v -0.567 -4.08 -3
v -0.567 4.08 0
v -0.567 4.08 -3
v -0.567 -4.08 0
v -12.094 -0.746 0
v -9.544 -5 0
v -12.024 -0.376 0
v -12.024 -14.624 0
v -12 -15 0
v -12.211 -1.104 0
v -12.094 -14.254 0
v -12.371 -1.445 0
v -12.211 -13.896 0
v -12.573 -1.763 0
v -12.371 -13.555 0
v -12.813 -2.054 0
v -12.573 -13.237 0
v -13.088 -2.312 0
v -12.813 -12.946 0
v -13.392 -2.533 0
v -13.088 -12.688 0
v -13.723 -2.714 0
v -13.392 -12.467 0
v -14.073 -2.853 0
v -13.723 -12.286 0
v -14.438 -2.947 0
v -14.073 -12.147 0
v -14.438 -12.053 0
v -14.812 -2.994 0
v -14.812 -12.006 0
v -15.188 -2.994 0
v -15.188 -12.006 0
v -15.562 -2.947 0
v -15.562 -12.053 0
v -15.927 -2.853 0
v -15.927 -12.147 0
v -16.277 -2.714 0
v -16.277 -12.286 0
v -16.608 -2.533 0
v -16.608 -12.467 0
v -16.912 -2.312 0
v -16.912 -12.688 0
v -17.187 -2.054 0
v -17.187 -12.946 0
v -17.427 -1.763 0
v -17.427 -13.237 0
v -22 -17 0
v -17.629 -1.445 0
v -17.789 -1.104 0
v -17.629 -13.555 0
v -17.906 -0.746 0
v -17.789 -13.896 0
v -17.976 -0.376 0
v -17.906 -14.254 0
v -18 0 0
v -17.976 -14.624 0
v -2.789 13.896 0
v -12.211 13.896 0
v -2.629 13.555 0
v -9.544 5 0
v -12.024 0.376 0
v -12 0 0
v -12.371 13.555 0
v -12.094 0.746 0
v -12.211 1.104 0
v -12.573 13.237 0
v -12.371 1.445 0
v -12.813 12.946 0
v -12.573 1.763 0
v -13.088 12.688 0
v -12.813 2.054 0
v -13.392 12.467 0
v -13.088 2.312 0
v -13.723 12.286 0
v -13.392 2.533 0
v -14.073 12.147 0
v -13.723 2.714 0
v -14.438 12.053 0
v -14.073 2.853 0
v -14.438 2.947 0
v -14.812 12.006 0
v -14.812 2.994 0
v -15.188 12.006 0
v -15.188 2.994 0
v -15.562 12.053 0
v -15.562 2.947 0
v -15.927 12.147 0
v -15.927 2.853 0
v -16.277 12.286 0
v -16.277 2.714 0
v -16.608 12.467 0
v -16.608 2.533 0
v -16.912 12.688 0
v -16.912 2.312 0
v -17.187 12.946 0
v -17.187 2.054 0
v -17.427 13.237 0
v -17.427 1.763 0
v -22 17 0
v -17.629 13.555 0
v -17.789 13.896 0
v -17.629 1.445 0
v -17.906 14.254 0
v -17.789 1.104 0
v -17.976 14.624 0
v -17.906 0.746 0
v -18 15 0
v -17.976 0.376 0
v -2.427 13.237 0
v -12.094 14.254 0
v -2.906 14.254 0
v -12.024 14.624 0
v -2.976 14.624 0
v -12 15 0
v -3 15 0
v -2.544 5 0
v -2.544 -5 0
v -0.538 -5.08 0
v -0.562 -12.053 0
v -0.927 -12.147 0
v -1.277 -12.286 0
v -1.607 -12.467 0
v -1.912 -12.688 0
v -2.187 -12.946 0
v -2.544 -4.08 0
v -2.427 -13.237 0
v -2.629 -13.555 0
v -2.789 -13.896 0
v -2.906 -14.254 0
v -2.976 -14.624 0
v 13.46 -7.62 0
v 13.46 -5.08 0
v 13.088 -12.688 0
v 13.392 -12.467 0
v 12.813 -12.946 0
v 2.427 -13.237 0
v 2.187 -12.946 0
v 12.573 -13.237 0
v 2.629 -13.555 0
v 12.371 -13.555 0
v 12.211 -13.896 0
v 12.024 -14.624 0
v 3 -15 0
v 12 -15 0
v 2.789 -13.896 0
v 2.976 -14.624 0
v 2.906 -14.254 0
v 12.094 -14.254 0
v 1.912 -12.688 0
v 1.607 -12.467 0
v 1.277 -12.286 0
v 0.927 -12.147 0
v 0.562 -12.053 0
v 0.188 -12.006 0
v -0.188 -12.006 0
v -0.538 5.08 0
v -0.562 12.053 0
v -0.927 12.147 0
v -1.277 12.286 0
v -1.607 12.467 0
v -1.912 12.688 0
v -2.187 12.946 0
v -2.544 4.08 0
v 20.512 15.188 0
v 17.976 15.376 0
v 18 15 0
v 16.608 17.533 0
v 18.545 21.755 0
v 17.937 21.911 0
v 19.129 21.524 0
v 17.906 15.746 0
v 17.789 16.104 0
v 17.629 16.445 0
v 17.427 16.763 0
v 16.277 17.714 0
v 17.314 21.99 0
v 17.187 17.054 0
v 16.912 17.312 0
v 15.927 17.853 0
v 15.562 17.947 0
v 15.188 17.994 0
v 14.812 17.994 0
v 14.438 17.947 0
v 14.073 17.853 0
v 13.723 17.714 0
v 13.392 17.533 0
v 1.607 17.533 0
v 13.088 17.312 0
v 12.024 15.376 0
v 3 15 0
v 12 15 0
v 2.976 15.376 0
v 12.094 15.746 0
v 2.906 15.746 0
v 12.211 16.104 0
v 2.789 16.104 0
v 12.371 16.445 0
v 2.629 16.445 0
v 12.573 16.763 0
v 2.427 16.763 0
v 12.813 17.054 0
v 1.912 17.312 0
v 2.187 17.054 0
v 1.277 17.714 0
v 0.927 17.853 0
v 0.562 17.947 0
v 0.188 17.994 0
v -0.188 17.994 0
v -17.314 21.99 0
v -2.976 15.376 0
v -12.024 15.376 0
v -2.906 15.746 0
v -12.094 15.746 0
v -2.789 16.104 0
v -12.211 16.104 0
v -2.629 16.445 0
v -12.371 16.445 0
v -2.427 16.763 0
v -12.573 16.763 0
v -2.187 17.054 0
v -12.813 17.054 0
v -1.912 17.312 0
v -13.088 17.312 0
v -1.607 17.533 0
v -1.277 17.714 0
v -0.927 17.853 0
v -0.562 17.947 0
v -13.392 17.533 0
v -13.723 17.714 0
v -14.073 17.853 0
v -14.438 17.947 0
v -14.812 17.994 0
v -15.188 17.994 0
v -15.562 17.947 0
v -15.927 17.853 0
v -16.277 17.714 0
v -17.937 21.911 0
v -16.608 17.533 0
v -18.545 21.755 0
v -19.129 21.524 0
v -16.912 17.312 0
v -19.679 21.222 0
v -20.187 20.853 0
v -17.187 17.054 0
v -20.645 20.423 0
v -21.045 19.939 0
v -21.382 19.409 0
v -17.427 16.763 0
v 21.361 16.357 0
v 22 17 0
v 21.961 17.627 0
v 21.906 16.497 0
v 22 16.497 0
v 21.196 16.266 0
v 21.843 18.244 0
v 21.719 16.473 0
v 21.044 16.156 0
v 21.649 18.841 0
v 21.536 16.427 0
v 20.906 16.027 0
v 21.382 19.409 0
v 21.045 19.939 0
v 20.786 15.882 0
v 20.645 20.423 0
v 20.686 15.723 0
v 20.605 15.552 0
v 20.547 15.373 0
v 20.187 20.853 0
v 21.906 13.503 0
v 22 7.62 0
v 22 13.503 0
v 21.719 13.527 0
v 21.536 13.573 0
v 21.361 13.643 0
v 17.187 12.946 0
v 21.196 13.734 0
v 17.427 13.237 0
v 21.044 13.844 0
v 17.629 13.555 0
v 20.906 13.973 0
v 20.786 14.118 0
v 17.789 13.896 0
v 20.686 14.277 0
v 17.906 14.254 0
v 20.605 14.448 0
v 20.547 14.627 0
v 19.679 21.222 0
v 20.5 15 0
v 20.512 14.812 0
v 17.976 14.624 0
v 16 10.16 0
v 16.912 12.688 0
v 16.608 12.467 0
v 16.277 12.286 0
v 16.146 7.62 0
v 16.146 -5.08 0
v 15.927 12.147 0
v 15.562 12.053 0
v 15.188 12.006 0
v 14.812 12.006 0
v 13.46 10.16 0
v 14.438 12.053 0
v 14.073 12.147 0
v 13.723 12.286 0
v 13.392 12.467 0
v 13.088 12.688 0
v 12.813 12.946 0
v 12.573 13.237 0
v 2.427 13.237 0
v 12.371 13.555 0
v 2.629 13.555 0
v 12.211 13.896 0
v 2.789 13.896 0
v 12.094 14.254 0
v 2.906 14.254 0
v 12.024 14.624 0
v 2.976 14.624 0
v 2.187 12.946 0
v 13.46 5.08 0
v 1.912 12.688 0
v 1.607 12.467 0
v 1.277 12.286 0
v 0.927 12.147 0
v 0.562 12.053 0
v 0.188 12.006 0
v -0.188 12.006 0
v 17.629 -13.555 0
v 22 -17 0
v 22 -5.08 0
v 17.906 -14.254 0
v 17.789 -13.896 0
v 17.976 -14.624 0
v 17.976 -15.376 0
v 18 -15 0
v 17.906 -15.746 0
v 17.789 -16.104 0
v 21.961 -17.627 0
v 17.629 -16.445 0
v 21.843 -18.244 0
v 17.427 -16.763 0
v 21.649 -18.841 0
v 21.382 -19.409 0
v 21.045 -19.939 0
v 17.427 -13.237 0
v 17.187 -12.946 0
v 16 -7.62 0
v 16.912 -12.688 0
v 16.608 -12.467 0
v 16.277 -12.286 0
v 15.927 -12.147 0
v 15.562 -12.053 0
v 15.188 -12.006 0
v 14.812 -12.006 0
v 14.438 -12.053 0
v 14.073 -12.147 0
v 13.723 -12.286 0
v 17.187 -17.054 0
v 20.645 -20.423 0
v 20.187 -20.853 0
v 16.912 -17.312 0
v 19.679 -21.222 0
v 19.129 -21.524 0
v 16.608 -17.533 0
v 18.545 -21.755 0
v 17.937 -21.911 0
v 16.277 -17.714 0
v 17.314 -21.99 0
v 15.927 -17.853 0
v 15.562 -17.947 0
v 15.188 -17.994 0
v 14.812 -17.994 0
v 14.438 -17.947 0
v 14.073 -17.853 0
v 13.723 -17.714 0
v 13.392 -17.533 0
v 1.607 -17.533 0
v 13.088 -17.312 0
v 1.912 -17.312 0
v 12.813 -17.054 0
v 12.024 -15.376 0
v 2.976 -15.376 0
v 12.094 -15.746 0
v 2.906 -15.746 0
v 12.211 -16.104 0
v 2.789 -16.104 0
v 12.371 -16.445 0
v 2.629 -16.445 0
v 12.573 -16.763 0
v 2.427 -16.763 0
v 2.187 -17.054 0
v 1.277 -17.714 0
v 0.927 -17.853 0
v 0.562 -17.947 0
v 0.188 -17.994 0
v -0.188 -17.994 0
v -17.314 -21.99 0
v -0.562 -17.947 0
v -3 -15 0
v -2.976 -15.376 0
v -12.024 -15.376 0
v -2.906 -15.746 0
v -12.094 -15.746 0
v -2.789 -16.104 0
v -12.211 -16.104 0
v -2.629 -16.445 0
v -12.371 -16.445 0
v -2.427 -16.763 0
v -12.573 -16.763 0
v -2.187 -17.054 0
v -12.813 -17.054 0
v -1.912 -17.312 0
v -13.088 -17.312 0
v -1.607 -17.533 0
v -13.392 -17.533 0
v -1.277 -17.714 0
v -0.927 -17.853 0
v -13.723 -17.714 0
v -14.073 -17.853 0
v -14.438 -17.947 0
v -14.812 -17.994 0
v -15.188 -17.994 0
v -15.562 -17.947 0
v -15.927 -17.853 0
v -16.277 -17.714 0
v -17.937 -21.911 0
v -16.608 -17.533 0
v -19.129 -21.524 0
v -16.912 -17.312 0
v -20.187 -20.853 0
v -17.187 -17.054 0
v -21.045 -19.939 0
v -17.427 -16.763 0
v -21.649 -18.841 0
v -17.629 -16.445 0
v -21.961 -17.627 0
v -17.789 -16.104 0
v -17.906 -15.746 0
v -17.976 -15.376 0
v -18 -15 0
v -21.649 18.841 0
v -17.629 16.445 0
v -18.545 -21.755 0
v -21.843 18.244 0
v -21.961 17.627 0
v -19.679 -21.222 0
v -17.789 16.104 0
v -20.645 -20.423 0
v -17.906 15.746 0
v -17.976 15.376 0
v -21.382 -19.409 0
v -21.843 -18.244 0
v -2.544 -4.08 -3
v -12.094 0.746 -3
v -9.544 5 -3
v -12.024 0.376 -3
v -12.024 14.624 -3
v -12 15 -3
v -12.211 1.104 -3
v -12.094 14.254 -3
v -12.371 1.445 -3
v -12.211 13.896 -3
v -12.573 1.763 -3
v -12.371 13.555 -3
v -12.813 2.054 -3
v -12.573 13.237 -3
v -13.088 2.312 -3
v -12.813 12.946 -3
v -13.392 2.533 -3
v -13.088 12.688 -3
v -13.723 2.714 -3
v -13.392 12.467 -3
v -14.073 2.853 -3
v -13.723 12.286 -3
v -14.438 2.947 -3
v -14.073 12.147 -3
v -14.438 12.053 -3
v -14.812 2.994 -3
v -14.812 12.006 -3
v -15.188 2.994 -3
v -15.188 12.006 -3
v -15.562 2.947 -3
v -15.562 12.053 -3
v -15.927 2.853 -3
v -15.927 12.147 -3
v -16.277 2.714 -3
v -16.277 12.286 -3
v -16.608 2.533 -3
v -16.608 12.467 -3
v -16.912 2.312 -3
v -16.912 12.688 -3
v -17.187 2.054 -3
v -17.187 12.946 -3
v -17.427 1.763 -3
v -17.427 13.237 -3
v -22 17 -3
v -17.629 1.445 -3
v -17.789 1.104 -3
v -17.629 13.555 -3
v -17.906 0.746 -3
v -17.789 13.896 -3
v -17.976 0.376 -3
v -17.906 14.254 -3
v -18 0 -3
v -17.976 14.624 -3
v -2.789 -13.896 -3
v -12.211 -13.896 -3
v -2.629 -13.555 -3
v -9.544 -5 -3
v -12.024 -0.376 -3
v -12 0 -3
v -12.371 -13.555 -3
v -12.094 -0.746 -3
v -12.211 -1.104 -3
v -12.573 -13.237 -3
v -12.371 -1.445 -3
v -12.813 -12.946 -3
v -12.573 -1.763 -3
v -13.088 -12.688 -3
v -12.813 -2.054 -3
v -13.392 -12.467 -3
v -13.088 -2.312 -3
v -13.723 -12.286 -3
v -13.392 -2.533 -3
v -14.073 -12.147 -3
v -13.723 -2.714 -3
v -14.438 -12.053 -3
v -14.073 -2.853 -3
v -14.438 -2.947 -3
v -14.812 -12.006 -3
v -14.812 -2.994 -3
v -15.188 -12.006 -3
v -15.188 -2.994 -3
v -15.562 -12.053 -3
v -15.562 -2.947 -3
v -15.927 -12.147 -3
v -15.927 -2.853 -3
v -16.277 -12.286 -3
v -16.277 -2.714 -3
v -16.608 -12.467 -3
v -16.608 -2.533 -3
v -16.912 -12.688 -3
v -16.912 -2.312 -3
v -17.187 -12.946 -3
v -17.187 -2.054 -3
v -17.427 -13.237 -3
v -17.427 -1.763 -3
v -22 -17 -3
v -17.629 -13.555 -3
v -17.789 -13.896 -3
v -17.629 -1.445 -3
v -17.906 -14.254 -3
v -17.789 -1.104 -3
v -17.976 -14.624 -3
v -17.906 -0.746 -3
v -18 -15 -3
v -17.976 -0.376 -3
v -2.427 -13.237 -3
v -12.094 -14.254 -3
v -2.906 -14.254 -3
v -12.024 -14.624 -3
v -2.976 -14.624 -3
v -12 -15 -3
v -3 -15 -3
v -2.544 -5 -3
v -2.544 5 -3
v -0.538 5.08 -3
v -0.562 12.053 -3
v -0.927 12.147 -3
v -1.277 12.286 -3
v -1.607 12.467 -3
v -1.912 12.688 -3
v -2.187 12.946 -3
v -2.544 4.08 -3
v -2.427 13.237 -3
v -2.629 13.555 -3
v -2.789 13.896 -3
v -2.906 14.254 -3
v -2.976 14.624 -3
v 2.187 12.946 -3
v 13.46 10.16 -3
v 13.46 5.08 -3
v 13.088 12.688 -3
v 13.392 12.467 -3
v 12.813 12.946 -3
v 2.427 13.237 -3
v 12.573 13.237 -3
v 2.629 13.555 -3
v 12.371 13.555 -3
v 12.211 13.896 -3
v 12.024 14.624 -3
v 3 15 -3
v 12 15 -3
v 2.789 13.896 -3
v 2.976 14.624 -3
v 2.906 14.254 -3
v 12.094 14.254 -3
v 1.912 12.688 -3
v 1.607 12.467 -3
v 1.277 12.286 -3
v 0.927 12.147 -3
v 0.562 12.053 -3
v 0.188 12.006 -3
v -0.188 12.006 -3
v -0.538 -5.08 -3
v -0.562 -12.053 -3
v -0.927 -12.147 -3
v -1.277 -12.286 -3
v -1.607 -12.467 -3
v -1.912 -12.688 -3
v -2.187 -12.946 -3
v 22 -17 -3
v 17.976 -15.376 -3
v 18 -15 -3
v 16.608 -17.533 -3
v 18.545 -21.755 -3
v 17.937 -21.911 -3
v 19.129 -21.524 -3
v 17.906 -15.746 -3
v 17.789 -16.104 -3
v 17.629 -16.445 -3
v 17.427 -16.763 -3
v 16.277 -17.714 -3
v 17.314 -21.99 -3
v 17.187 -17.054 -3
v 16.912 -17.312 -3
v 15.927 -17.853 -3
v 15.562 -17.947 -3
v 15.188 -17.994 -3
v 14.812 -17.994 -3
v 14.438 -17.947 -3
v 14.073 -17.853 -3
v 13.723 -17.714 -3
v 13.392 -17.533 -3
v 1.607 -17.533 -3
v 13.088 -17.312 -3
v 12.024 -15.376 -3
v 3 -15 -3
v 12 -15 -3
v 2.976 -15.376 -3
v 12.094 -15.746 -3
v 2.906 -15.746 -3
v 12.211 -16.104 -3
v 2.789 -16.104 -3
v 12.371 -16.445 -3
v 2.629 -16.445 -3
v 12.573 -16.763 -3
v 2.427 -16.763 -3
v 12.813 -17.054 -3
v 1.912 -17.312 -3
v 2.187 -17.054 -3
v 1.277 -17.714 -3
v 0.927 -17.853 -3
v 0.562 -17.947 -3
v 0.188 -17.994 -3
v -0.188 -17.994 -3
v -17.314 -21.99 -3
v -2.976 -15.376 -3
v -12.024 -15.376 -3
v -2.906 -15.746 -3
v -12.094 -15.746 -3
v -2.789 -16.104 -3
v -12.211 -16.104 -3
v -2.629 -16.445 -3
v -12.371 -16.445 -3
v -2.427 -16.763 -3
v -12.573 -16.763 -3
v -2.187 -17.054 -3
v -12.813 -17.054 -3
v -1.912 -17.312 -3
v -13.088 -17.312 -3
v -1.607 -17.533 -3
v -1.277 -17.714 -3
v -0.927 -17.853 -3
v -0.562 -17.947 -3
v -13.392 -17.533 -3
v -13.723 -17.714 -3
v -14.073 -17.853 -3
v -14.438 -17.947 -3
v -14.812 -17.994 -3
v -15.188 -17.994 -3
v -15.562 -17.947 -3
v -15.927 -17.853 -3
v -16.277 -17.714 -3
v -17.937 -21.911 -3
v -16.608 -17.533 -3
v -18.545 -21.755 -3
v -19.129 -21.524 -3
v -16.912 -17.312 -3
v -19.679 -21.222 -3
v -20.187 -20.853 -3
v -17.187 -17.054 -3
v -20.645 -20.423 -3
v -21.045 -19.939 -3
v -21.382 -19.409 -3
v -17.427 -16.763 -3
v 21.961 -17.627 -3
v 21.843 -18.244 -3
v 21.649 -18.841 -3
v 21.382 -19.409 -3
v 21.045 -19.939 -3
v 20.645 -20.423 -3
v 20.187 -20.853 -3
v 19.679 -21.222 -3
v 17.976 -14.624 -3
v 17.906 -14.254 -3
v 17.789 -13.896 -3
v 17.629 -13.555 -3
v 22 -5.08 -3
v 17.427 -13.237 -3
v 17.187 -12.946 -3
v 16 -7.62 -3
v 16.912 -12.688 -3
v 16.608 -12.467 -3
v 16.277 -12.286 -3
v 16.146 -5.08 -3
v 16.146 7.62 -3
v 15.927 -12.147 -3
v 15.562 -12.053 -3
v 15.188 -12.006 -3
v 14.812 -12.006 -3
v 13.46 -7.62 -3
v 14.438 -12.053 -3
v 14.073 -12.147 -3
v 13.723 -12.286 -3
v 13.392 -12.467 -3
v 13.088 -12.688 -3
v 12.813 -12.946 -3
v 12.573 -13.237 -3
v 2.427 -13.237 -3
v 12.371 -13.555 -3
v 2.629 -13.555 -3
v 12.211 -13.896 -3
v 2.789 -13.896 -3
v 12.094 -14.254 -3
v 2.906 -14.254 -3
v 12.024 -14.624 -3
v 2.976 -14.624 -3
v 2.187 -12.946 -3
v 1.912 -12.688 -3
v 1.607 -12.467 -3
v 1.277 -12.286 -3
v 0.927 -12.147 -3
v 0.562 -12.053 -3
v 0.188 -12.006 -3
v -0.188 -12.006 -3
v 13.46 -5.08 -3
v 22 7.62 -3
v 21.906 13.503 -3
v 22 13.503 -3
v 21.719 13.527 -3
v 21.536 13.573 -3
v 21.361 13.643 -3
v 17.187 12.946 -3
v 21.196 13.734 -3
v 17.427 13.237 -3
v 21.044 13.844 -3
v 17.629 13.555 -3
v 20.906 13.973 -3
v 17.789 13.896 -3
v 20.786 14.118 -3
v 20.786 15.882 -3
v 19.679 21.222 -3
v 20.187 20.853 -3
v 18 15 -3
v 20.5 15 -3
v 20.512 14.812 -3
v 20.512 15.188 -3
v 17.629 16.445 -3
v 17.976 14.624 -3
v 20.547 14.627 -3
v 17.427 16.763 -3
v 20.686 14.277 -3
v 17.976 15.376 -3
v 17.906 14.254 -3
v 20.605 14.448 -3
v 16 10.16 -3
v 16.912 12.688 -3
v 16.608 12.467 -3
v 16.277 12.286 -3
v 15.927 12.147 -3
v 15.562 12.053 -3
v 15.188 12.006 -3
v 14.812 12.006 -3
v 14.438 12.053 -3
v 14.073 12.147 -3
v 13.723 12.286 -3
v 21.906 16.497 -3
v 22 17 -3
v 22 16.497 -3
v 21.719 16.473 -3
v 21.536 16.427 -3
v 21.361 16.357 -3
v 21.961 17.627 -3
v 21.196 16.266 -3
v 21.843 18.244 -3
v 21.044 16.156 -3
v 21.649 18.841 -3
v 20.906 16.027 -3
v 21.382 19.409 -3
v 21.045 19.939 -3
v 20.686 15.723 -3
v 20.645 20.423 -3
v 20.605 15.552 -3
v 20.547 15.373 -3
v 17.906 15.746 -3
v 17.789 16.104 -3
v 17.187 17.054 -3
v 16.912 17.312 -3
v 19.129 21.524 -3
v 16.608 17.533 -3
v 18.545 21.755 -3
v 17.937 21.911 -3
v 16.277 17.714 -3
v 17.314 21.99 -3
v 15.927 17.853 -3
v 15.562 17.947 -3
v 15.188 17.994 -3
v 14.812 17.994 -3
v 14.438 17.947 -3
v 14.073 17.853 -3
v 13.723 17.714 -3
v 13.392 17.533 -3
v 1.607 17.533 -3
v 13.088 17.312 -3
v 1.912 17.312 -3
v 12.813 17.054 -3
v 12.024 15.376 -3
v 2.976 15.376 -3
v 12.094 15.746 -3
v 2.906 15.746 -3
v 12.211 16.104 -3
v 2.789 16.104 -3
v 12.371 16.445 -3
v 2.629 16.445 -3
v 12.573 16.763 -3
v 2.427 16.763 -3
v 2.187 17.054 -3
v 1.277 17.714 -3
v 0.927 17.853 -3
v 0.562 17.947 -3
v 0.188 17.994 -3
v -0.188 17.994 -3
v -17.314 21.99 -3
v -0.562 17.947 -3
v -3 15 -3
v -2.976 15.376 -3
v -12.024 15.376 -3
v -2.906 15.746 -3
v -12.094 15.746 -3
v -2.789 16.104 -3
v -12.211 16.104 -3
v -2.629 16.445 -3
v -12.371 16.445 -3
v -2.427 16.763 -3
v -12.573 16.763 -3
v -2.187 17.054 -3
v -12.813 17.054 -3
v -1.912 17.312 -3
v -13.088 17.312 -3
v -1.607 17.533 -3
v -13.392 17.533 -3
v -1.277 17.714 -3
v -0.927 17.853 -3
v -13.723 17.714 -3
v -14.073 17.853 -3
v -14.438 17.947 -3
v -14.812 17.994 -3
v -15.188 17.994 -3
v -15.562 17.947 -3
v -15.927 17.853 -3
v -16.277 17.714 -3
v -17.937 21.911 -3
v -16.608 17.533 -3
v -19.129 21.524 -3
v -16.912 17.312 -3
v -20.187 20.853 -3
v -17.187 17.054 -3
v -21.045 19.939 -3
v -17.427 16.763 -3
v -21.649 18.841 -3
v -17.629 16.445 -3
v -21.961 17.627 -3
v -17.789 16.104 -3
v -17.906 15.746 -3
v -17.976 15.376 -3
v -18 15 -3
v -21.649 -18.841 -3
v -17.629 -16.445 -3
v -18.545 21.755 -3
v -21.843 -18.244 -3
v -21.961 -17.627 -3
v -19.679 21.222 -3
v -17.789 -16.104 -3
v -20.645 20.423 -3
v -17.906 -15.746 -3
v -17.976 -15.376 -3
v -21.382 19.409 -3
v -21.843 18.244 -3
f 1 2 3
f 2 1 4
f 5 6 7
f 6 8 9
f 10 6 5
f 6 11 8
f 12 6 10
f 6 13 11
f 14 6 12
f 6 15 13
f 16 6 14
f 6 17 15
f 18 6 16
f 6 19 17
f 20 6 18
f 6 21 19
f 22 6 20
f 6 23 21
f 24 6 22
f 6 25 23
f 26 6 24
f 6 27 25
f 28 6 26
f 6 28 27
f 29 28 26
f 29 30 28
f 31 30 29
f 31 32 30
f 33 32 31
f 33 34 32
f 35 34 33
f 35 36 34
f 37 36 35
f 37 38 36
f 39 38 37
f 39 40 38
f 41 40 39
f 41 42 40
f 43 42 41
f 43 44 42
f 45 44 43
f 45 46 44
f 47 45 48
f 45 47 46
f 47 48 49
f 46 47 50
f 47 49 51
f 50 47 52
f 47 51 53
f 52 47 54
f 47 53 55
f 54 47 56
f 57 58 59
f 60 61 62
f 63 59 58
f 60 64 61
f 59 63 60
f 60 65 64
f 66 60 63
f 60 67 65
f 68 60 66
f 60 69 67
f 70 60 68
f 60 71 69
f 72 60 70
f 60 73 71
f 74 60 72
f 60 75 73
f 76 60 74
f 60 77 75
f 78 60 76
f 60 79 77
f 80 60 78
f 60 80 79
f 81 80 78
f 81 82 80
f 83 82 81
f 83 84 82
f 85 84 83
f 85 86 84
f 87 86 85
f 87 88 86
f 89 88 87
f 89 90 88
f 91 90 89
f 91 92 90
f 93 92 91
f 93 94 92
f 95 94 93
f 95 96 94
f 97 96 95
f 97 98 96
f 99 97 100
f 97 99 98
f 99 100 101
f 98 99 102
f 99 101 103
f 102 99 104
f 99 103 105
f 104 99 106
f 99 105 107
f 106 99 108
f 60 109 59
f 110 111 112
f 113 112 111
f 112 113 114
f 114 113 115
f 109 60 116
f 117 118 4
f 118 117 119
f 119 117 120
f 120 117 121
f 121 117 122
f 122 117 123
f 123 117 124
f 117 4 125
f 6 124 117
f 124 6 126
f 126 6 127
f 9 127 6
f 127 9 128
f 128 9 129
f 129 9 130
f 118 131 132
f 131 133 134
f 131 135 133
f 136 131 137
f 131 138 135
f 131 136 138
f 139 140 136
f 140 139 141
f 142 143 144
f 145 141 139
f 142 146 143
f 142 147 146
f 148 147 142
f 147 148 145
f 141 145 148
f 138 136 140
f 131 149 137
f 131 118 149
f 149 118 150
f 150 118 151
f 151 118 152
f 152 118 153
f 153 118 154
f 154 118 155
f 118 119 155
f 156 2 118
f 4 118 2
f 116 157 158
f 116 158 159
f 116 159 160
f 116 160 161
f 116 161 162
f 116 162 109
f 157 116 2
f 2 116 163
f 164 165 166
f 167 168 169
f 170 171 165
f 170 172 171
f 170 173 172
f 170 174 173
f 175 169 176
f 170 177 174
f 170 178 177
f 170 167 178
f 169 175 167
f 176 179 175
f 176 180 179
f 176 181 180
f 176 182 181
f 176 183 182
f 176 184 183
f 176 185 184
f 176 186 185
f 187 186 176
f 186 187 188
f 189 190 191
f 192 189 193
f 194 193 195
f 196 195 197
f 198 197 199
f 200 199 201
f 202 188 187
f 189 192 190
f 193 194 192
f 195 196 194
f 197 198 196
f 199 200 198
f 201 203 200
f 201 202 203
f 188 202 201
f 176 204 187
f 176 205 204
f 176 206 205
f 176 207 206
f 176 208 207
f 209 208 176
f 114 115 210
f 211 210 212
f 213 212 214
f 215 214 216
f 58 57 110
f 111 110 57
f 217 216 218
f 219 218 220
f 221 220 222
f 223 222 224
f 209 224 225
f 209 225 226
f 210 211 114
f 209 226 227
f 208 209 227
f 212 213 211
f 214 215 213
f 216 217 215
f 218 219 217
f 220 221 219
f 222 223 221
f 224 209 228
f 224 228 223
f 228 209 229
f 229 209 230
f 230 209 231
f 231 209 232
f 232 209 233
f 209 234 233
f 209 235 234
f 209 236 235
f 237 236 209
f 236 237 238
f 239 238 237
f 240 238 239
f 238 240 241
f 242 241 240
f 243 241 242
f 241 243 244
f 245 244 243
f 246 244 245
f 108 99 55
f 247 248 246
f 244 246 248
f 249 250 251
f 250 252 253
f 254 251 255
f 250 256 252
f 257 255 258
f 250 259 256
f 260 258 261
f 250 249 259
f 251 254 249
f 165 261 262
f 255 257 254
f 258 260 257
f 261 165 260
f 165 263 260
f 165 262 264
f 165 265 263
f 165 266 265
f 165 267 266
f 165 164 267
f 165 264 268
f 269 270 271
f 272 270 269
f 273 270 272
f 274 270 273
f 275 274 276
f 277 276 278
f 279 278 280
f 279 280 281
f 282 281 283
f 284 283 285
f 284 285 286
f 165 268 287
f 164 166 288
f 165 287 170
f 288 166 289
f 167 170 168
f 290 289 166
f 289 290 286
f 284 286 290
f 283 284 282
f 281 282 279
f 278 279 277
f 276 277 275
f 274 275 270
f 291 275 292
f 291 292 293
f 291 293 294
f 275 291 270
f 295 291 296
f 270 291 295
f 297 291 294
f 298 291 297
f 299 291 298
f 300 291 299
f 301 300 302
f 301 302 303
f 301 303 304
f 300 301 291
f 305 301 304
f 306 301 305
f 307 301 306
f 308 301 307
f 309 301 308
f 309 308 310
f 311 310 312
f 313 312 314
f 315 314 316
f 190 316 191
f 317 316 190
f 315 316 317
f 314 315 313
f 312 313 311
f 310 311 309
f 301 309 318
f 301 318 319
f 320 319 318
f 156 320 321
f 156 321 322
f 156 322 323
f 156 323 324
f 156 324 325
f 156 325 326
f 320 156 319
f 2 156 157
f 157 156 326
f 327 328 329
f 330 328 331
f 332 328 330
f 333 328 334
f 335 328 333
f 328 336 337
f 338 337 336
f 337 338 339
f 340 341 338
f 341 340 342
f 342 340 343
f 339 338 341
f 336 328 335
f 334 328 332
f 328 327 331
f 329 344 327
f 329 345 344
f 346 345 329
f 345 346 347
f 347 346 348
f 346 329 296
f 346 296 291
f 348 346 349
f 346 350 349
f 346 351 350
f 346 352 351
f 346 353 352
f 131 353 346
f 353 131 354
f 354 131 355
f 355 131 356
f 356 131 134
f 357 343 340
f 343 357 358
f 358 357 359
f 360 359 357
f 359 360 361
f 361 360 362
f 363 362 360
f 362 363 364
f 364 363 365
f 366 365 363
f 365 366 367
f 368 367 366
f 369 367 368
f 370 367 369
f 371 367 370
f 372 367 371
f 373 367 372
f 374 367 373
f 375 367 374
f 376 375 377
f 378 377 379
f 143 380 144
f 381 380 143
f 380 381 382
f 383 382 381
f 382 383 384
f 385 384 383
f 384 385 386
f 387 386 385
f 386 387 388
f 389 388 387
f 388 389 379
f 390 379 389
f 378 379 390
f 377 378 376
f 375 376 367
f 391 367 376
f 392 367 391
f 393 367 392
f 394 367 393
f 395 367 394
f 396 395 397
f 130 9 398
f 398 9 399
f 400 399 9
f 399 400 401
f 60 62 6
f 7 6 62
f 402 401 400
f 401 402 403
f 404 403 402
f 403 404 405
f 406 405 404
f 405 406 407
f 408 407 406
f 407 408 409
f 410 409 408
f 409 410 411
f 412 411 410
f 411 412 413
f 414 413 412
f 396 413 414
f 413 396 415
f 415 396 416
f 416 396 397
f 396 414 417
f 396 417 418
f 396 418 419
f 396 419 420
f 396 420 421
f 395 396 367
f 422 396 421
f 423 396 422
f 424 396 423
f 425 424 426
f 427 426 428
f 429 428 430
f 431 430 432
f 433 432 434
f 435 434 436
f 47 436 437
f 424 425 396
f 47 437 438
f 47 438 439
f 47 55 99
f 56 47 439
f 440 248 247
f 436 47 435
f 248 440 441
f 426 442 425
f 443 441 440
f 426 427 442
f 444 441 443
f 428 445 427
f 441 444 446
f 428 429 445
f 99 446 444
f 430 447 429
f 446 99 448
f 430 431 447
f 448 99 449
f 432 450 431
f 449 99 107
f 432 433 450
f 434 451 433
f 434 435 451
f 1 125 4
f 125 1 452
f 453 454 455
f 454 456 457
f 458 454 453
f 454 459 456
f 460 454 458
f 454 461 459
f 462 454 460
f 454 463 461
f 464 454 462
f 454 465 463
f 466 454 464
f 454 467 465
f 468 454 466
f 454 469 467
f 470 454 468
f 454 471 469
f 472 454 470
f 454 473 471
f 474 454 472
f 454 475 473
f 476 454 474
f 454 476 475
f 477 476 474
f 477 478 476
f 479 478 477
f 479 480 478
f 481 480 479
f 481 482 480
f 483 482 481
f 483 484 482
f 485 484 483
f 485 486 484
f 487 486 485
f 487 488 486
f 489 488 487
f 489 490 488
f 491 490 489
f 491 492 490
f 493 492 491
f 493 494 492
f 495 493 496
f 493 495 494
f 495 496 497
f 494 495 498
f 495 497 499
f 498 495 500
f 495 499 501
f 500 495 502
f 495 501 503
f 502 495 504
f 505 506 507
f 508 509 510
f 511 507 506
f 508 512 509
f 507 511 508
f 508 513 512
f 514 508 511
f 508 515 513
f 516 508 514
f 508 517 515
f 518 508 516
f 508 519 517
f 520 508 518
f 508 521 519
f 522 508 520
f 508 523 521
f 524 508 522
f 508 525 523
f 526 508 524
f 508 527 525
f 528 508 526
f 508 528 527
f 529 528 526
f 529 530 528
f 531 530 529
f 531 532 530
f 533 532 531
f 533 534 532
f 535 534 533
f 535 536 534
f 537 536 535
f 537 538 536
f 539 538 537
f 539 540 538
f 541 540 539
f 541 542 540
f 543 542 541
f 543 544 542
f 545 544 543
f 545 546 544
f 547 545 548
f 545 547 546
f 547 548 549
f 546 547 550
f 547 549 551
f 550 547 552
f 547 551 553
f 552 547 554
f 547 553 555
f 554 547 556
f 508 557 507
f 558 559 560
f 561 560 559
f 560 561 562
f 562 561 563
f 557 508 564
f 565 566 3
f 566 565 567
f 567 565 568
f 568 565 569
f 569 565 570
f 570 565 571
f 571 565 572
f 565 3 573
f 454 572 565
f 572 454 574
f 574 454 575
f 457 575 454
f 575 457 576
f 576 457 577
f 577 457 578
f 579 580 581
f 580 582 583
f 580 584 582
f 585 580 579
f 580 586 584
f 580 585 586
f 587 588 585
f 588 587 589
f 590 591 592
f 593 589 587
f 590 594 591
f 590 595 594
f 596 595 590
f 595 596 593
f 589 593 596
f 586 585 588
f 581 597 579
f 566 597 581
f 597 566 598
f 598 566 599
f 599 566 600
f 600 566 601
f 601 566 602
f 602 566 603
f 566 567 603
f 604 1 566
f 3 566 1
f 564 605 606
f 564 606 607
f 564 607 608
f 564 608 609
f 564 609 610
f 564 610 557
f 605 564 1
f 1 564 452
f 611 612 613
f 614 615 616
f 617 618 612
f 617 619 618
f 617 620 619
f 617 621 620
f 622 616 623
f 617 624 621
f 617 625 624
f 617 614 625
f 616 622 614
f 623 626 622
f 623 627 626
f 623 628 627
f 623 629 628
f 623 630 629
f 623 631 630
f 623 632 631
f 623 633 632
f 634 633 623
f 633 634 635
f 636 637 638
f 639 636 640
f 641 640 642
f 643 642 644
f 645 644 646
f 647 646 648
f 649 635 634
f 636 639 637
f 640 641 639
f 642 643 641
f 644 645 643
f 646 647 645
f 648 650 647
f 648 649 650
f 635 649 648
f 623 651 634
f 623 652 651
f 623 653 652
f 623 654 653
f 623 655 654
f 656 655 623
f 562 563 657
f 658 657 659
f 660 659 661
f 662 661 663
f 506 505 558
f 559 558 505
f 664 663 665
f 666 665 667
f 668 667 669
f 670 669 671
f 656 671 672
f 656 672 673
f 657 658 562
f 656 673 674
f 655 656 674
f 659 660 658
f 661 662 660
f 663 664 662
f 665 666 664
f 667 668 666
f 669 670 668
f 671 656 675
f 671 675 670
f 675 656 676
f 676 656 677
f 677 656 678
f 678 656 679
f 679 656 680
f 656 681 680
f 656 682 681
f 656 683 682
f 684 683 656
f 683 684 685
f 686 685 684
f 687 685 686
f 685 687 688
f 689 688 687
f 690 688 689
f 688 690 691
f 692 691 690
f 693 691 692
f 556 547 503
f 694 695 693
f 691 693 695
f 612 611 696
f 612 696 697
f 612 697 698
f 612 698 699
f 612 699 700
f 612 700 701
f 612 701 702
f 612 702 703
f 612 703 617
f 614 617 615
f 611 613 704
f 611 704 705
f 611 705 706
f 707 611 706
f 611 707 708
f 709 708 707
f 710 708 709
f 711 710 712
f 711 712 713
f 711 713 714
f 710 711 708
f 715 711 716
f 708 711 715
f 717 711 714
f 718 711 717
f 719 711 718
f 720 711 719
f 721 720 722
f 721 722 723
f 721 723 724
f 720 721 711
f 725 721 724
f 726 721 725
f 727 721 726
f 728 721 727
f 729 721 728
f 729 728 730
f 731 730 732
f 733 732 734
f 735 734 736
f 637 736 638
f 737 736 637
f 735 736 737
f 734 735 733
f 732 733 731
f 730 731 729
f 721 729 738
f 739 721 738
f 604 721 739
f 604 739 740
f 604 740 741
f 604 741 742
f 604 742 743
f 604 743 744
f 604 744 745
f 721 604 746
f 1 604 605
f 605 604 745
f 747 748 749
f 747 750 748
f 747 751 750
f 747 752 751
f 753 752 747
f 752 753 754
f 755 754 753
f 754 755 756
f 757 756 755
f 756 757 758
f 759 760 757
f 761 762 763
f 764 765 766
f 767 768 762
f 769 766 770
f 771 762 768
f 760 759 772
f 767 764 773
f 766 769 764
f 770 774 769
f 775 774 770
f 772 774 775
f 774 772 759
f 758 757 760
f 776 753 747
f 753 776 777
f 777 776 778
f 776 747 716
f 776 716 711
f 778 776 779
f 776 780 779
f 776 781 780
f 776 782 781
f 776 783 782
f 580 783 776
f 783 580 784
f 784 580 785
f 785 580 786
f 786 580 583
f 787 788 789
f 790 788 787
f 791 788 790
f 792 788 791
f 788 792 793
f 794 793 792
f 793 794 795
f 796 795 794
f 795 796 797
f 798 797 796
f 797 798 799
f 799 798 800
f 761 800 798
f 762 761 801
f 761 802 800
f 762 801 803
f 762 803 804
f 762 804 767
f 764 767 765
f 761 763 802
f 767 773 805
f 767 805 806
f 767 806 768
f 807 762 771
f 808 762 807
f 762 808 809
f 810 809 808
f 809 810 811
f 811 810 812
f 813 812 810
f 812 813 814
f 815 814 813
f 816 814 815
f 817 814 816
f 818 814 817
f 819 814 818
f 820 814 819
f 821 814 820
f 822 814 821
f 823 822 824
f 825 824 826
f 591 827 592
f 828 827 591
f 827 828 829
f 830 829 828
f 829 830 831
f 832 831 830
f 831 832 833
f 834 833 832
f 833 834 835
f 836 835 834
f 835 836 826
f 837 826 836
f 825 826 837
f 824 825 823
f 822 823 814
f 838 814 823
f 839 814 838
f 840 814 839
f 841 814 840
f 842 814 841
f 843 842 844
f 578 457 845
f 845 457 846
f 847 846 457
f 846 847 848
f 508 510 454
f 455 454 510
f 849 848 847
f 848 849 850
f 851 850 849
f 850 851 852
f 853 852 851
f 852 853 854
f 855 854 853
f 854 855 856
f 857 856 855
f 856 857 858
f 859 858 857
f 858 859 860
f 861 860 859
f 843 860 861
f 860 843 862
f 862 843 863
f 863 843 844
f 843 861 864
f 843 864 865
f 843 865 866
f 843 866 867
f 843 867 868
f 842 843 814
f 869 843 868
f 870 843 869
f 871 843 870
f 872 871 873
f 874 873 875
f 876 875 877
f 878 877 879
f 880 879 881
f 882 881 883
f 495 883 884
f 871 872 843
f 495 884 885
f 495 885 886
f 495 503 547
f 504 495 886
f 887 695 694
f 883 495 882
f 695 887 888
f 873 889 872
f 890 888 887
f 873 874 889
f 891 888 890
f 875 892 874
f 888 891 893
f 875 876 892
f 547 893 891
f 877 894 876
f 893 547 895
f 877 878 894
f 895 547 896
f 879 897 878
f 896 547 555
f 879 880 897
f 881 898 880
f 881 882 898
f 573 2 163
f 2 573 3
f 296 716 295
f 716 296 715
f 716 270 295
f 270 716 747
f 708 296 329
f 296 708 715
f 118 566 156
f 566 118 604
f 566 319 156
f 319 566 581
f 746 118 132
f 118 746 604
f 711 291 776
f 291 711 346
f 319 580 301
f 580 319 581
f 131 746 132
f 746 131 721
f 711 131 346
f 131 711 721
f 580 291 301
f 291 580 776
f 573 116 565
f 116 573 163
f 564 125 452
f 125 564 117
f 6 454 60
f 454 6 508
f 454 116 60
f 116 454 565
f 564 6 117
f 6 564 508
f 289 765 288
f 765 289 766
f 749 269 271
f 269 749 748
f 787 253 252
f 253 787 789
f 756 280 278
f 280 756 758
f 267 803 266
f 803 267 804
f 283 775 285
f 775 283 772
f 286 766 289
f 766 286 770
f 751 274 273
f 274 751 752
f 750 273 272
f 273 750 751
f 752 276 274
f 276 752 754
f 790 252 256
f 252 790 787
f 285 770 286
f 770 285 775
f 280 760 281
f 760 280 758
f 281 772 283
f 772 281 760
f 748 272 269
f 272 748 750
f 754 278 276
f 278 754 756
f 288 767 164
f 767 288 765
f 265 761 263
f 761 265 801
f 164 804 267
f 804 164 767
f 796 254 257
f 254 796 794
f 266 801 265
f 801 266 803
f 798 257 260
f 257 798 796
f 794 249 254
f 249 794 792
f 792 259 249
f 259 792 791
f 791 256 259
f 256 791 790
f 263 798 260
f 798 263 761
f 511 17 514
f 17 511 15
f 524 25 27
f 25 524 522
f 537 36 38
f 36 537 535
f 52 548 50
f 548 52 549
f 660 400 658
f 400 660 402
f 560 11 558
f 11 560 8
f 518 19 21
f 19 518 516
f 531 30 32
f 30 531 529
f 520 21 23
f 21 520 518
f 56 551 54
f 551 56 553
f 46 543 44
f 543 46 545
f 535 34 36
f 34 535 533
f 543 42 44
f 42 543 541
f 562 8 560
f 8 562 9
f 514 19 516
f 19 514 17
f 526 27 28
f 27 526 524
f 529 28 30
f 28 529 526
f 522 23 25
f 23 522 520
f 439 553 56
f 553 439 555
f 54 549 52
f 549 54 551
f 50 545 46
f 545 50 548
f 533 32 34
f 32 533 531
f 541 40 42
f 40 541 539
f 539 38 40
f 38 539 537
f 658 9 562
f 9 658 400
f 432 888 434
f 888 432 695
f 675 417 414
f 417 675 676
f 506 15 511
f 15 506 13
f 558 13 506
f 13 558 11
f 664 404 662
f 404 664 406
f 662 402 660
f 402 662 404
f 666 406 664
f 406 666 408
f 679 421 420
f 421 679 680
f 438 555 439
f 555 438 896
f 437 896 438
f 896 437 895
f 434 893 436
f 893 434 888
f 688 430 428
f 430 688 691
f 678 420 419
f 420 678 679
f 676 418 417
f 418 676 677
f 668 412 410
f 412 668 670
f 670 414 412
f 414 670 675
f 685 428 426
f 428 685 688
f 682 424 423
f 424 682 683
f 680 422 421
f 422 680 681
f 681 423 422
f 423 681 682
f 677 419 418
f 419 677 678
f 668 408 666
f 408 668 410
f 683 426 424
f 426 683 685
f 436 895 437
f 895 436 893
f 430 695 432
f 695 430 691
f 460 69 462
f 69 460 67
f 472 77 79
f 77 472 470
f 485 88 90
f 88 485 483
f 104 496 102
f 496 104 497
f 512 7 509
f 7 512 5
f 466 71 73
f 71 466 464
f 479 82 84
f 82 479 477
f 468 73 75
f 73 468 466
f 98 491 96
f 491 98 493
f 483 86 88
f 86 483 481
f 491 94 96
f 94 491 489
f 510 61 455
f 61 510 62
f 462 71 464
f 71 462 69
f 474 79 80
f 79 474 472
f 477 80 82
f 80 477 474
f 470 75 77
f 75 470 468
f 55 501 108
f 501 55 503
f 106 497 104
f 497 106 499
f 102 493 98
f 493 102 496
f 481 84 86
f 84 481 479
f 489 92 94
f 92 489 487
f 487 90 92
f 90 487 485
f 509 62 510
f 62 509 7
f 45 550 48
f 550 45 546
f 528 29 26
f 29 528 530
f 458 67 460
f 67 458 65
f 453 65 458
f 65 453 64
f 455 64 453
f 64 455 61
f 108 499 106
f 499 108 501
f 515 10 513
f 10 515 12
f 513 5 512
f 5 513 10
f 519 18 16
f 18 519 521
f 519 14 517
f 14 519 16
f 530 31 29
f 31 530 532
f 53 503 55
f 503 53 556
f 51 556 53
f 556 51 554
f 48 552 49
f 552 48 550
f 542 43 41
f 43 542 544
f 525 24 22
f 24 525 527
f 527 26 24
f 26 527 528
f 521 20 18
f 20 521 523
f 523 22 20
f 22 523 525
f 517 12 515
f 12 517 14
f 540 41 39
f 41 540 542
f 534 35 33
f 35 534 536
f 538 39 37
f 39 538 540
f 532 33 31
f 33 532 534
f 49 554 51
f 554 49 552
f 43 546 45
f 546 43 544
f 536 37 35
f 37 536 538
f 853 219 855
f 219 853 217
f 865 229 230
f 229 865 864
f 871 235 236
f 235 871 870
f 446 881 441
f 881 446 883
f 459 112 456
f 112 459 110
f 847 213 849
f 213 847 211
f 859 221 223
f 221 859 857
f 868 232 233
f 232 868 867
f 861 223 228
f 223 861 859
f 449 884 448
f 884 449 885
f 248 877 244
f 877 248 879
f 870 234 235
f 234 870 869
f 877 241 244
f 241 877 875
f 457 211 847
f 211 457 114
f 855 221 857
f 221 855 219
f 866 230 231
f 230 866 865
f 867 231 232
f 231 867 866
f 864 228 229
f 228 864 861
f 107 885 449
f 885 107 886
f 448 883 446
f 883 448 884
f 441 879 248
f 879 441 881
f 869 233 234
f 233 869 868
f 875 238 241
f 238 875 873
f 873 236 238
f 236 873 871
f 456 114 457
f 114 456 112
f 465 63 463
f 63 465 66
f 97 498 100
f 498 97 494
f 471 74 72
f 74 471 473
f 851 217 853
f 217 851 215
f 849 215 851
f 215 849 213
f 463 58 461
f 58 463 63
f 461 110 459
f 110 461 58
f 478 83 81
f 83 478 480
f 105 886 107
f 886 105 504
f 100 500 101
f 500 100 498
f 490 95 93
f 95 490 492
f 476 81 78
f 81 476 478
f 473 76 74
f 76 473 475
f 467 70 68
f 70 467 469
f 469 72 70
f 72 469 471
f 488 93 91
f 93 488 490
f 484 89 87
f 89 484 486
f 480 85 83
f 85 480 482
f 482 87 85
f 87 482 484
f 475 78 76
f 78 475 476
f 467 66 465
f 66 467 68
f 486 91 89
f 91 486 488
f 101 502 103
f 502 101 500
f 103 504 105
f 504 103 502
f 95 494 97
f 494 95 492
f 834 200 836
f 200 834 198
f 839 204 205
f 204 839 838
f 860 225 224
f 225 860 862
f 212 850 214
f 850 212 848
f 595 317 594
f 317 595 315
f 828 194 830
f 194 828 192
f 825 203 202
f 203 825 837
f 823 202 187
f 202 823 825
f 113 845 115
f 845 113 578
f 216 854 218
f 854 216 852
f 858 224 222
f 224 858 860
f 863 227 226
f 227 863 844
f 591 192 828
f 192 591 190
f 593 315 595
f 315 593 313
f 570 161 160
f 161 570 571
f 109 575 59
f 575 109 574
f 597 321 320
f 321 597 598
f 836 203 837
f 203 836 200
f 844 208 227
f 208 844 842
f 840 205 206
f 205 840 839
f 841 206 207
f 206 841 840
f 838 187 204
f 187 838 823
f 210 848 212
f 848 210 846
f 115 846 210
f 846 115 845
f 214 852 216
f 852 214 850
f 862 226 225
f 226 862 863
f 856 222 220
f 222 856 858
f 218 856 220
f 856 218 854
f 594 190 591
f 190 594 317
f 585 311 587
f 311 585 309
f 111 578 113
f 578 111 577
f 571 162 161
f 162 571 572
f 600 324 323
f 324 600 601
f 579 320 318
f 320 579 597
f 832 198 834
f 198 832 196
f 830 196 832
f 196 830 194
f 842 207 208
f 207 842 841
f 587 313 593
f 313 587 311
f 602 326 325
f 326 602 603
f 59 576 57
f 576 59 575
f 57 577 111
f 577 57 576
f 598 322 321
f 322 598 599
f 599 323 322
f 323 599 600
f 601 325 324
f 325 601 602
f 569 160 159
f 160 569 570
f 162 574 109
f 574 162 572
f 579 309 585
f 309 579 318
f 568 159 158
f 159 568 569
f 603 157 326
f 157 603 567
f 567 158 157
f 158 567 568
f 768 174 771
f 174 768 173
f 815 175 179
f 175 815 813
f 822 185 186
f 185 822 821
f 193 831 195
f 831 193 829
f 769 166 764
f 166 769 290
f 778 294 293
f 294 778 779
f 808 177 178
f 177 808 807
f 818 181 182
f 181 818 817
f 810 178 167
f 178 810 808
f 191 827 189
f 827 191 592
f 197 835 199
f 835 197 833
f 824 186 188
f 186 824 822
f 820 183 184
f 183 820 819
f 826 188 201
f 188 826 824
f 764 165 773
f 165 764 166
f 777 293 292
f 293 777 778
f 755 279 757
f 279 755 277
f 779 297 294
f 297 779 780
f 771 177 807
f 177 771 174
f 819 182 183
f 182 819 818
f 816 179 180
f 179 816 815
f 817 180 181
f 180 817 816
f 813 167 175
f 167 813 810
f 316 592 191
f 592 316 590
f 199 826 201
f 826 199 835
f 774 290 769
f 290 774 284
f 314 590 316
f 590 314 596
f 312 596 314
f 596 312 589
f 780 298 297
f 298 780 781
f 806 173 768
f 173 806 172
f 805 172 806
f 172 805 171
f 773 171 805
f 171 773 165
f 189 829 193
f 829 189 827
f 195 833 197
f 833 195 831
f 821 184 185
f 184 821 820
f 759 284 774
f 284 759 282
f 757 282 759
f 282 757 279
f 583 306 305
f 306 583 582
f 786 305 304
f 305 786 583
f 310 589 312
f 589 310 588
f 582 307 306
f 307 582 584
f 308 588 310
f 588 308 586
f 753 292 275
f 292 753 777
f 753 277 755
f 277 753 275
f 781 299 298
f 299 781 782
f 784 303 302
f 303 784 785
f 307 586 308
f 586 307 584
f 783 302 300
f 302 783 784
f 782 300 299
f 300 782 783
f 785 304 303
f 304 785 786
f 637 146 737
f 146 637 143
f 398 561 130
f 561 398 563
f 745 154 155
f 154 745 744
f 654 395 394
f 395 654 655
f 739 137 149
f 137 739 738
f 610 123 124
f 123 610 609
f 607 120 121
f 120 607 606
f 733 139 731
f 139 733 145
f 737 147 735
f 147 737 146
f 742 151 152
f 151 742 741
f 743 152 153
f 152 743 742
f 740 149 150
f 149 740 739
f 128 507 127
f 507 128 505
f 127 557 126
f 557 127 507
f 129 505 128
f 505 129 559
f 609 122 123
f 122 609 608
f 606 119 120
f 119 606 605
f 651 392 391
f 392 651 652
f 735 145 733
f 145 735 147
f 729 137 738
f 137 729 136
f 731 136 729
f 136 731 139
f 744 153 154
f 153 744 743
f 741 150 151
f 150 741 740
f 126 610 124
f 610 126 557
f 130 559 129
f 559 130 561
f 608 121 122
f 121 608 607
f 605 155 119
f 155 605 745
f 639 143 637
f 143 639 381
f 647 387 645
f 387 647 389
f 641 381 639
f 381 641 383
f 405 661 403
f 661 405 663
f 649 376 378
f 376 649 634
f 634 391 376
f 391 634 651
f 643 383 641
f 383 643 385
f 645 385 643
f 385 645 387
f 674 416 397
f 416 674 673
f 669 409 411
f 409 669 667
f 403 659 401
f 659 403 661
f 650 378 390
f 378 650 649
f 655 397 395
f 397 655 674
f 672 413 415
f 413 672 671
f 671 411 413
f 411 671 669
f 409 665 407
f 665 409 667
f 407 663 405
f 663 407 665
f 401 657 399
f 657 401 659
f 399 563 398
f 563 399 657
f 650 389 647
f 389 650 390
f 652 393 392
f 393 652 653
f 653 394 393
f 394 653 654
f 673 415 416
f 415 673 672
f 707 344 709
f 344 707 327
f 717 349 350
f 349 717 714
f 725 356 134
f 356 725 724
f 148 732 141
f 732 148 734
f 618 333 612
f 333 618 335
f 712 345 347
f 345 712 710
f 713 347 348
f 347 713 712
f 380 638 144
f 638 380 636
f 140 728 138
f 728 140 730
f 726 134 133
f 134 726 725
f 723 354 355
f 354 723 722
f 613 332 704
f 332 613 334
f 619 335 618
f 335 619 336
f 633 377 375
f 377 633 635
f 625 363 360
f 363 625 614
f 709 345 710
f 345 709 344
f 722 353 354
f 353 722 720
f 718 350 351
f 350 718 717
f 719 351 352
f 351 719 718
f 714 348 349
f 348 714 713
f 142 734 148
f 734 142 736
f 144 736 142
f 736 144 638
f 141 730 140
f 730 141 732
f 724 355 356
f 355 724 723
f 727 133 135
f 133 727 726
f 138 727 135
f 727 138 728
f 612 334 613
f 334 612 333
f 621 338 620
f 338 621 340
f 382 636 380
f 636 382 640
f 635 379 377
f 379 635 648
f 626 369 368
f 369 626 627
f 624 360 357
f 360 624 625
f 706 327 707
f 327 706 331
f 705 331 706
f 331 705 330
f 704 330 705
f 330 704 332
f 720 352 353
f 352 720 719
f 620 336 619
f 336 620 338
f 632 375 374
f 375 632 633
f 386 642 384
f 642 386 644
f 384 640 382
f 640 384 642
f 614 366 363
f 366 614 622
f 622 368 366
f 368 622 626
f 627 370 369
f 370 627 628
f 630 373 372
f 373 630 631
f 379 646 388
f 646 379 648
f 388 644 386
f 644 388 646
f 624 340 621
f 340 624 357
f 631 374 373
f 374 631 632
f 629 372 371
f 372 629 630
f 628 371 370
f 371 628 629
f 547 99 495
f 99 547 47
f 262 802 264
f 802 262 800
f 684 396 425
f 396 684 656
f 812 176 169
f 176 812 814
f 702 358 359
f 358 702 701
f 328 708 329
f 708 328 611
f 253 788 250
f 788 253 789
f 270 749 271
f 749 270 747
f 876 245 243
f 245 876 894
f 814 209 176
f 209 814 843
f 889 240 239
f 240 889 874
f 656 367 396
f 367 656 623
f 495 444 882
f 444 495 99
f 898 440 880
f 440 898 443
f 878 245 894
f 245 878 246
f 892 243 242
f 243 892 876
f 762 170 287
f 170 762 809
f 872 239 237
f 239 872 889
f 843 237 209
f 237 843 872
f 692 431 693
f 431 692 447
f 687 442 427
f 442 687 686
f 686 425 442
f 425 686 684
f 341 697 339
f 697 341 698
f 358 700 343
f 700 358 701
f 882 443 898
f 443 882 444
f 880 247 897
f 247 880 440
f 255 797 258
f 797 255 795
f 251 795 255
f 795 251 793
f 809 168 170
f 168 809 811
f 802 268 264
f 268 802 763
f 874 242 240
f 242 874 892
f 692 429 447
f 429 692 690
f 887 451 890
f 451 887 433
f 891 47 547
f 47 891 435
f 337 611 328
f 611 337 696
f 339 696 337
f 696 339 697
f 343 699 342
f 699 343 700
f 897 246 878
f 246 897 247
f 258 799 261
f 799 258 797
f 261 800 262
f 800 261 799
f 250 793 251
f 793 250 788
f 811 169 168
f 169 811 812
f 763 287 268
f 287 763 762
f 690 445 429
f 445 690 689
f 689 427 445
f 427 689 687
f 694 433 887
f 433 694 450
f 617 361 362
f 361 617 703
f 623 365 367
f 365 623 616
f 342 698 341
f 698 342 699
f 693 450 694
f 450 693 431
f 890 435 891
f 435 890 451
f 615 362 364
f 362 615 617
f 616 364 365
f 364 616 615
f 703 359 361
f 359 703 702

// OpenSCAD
$fn = 50;


difference() {
	union() {
		translate(v = [0, 0, -3]) {
			hull() {
				translate(v = [-17.0000000000, 17.0000000000, 0]) {
					cylinder(h = 3, r = 5);
				}
				translate(v = [17.0000000000, 17.0000000000, 0]) {
					cylinder(h = 3, r = 5);
				}
				translate(v = [-17.0000000000, -17.0000000000, 0]) {
					cylinder(h = 3, r = 5);
				}
				translate(v = [17.0000000000, -17.0000000000, 0]) {
					cylinder(h = 3, r = 5);
				}
			}
		}
	}
	union() {
		translate(v = [22.5000000000, 0, -3]) {
			rotate(a = [0, 0, 180]) {
				difference() {
					union() {
						#translate(v = [23.0670000000, -4.0800000000, 0]) {
							cube(size = [5, 8.1600000000, 3]);
						}
						#translate(v = [0.3540000000, -7.6200000000, 0]) {
							cube(size = [6, 12.7000000000, 3]);
						}
						#translate(v = [9.0380000000, -5.0800000000, 0]) {
							cube(size = [14, 10.1600000000, 3]);
						}
						#translate(v = [6.5000000000, -10.1600000000, 0]) {
							cube(size = [2.5400000000, 17.7800000000, 3]);
						}
						#translate(v = [25.0440000000, -5.0000000000, 0]) {
							cube(size = [7, 10, 3]);
						}
						#translate(v = [0.5000000000, -15, 0.0000000000]) {
							cylinder(h = 3, r = 1.5000000000);
						}
					}
					union();
				}
			}
		}
		translate(v = [-15.0000000000, -15.0000000000, -50.0000000000]) {
			cylinder(h = 100, r = 3.0000000000);
		}
		translate(v = [-15.0000000000, 0.0000000000, -50.0000000000]) {
			cylinder(h = 100, r = 3.0000000000);
		}
		translate(v = [-15.0000000000, 15.0000000000, -50.0000000000]) {
			cylinder(h = 100, r = 3.0000000000);
		}
		translate(v = [-15.0000000000, 15.0000000000, -50.0000000000]) {
			cylinder(h = 100, r = 3.0000000000);
		}
		translate(v = [0.0000000000, 15.0000000000, -50.0000000000]) {
			cylinder(h = 100, r = 3.0000000000);
		}
		translate(v = [15.0000000000, 15.0000000000, -50.0000000000]) {
			cylinder(h = 100, r = 3.0000000000);
		}
		translate(v = [-15.0000000000, -15.0000000000, -50.0000000000]) {
			cylinder(h = 100, r = 3.0000000000);
		}
		translate(v = [0.0000000000, -15.0000000000, -50.0000000000]) {
			cylinder(h = 100, r = 3.0000000000);
		}
		translate(v = [15.0000000000, -15.0000000000, -50.0000000000]) {
			cylinder(h = 100, r = 3.0000000000);
		}
	}
}
